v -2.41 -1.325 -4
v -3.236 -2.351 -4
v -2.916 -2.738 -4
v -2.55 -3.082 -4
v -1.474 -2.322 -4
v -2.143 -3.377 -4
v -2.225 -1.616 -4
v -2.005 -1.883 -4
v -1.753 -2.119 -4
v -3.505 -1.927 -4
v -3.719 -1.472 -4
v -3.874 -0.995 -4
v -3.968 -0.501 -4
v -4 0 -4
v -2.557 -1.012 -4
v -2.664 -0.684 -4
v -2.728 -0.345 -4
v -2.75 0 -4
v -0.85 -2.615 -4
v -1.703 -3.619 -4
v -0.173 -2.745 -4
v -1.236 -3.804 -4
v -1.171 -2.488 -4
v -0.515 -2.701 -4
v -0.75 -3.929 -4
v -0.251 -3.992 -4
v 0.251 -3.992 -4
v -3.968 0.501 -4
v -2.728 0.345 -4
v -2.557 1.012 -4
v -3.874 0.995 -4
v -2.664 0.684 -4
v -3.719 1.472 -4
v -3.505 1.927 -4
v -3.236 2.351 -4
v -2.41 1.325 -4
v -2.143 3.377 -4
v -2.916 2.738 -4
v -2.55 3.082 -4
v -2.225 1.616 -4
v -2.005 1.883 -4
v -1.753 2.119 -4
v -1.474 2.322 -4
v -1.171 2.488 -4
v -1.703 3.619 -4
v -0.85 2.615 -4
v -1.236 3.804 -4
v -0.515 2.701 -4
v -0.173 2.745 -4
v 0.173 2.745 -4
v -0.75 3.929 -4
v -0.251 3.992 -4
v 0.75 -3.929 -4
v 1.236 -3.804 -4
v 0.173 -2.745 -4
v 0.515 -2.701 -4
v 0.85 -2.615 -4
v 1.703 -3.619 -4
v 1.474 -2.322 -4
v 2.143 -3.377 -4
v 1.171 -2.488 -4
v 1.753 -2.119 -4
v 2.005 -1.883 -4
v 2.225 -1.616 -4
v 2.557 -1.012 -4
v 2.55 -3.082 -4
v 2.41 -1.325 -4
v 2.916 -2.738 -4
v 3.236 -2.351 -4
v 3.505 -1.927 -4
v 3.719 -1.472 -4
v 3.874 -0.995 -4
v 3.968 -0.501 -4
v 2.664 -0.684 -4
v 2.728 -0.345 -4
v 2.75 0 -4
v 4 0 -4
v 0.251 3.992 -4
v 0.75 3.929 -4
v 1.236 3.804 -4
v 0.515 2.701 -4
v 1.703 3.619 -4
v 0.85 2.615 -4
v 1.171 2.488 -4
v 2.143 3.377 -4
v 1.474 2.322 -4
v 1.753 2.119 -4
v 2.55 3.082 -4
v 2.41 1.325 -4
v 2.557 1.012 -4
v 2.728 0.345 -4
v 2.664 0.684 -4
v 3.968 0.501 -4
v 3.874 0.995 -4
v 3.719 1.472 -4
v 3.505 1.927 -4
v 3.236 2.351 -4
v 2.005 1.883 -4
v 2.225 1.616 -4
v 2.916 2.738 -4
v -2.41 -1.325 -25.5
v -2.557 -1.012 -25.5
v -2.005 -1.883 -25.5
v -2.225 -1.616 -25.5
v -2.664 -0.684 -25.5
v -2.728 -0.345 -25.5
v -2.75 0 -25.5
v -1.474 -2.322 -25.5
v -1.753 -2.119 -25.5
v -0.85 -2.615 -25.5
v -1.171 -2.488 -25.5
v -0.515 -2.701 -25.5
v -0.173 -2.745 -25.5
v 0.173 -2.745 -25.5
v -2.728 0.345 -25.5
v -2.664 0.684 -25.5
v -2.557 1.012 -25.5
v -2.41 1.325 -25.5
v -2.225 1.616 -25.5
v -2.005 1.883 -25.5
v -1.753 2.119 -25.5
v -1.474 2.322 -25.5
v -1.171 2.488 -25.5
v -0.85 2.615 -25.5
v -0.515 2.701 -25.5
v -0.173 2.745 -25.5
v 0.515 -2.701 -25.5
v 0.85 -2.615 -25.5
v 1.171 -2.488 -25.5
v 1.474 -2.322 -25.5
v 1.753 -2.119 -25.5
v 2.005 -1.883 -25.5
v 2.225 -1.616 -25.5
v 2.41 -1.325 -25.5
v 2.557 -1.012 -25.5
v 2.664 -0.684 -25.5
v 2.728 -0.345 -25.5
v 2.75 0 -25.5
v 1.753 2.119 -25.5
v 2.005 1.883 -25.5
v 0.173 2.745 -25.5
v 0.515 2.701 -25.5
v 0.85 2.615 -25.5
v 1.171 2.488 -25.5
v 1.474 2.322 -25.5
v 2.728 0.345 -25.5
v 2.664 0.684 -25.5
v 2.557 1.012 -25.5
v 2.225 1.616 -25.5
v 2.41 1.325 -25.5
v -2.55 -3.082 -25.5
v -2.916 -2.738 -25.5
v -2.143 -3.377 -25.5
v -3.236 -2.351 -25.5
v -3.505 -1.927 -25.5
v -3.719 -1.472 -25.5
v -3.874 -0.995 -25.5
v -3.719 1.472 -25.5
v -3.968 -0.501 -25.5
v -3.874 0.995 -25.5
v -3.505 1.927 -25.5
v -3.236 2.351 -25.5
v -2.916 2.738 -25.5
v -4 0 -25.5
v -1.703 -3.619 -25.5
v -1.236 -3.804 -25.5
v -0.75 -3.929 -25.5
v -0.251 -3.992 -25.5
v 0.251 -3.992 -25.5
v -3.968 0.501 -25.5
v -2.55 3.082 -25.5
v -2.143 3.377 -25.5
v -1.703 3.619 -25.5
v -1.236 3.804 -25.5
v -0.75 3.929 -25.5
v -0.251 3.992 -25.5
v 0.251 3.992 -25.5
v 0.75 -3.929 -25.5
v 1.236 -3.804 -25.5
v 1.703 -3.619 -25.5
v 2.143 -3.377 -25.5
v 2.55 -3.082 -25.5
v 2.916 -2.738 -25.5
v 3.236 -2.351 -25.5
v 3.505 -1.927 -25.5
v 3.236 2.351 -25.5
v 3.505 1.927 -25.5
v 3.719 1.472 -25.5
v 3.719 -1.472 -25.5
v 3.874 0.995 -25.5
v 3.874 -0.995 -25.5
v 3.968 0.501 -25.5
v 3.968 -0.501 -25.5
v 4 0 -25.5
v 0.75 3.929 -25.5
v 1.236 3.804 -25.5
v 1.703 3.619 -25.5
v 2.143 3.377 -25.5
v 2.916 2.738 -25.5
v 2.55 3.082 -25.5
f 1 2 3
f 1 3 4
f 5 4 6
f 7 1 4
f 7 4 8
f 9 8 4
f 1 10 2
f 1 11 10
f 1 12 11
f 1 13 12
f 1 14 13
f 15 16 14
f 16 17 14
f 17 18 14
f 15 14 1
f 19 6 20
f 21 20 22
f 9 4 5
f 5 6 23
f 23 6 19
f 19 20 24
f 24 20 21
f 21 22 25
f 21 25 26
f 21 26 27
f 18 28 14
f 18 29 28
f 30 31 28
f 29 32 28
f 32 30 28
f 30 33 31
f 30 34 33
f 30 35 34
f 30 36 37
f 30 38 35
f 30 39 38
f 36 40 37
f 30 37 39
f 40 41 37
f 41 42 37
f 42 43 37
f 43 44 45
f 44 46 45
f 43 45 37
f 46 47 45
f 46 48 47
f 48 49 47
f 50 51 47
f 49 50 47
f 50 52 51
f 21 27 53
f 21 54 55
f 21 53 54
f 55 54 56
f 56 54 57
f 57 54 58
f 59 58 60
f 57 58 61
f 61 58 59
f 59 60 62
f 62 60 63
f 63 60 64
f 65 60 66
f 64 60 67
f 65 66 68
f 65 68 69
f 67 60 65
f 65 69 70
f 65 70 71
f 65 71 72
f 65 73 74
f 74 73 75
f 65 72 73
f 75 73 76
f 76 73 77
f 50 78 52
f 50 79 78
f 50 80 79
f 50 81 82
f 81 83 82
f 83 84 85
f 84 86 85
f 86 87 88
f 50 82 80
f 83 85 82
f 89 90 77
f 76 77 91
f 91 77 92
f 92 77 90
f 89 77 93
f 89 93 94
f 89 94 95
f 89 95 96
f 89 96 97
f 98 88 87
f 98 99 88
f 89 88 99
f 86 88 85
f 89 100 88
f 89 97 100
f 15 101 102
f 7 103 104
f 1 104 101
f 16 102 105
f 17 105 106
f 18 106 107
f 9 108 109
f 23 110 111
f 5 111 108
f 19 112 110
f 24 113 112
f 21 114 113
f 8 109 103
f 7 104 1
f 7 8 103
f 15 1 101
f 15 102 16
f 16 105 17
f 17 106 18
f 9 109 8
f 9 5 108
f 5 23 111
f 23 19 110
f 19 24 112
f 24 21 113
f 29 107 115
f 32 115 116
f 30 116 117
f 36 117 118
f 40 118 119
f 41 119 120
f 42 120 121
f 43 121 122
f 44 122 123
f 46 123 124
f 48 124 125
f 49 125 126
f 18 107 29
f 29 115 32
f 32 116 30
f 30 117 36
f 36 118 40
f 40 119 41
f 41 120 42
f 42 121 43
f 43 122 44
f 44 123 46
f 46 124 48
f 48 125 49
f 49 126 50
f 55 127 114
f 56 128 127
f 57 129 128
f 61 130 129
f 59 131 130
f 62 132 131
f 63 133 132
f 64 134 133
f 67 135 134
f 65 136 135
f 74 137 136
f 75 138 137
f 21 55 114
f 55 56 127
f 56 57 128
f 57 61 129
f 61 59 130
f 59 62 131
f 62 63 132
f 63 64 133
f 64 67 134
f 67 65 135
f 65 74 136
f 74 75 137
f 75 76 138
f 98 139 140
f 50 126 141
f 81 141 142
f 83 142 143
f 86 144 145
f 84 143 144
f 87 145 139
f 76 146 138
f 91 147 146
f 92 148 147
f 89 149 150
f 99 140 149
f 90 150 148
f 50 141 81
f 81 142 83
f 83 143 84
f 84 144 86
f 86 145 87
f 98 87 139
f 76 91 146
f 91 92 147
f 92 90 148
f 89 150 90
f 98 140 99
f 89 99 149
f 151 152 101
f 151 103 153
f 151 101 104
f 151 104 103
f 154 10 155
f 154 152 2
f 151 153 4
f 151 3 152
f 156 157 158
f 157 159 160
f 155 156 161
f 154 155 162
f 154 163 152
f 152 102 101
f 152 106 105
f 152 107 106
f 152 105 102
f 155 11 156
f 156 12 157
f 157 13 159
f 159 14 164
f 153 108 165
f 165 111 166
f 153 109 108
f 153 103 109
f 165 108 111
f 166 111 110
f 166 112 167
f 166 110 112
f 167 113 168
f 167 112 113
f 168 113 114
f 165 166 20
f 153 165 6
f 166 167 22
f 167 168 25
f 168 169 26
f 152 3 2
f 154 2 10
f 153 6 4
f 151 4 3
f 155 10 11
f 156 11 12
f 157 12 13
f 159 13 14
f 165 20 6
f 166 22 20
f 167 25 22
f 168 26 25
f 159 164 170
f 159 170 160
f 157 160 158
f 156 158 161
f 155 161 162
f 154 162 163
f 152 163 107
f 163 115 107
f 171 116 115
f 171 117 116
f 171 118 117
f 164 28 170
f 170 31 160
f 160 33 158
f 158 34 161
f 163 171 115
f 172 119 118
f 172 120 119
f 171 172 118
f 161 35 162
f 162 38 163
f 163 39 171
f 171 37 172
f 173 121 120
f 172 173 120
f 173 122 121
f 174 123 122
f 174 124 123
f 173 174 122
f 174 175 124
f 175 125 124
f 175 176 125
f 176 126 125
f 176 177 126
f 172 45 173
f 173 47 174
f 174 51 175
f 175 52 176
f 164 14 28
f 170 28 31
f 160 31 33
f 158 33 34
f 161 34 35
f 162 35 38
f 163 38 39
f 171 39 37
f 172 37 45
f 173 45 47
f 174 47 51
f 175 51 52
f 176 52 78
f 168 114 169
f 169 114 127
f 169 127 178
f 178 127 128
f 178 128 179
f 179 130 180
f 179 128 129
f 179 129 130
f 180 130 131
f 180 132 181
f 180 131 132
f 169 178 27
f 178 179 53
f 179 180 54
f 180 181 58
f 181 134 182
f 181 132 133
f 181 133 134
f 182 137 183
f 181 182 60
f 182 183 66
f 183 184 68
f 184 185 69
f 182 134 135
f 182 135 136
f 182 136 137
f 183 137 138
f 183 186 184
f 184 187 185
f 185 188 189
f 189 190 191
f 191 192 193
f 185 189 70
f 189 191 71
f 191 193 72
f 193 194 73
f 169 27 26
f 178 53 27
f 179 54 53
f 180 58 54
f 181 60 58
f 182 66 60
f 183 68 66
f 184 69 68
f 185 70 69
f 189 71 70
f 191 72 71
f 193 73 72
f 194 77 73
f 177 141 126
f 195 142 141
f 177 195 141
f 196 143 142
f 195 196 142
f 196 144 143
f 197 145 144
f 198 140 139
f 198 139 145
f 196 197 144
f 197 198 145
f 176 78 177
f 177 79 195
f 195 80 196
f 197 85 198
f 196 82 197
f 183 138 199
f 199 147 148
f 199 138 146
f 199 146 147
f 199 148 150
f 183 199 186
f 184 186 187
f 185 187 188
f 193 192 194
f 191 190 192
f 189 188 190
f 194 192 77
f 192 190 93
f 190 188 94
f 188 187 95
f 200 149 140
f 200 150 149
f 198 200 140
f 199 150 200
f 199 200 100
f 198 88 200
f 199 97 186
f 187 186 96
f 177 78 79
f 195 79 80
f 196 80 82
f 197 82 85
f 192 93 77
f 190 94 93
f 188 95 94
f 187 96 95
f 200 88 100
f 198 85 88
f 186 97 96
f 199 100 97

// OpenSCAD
$fn = 50;

difference() {
	union() {
		translate(v = [0, 0, -25.5]) {
			cylinder(h = 25.5, r = 4.0);
		}
	}
	union() {
		translate(v = [0, 0, 0]) {
			rotate(a = [0, 0, 0]) {
				difference() {
					union() {
						translate(v = [0, 0, -4]) {
							linear_extrude(height = 4) {
								polygon(points = [[4.8468, 0.0], [2.4234000000000004, 4.197451927062417], [-2.423399999999999, 4.197451927062417], [-4.8468, 5.935618106107392e-16], [-2.423400000000002, -4.197451927062416], [2.423399999999997, -4.197451927062419]]);
							}
						}
					}
					union();
				}
			}
		}
		#translate(v = [0, 0, -100.0]) {
			cylinder(h = 200, r = 2.75);
		}
	}
}
